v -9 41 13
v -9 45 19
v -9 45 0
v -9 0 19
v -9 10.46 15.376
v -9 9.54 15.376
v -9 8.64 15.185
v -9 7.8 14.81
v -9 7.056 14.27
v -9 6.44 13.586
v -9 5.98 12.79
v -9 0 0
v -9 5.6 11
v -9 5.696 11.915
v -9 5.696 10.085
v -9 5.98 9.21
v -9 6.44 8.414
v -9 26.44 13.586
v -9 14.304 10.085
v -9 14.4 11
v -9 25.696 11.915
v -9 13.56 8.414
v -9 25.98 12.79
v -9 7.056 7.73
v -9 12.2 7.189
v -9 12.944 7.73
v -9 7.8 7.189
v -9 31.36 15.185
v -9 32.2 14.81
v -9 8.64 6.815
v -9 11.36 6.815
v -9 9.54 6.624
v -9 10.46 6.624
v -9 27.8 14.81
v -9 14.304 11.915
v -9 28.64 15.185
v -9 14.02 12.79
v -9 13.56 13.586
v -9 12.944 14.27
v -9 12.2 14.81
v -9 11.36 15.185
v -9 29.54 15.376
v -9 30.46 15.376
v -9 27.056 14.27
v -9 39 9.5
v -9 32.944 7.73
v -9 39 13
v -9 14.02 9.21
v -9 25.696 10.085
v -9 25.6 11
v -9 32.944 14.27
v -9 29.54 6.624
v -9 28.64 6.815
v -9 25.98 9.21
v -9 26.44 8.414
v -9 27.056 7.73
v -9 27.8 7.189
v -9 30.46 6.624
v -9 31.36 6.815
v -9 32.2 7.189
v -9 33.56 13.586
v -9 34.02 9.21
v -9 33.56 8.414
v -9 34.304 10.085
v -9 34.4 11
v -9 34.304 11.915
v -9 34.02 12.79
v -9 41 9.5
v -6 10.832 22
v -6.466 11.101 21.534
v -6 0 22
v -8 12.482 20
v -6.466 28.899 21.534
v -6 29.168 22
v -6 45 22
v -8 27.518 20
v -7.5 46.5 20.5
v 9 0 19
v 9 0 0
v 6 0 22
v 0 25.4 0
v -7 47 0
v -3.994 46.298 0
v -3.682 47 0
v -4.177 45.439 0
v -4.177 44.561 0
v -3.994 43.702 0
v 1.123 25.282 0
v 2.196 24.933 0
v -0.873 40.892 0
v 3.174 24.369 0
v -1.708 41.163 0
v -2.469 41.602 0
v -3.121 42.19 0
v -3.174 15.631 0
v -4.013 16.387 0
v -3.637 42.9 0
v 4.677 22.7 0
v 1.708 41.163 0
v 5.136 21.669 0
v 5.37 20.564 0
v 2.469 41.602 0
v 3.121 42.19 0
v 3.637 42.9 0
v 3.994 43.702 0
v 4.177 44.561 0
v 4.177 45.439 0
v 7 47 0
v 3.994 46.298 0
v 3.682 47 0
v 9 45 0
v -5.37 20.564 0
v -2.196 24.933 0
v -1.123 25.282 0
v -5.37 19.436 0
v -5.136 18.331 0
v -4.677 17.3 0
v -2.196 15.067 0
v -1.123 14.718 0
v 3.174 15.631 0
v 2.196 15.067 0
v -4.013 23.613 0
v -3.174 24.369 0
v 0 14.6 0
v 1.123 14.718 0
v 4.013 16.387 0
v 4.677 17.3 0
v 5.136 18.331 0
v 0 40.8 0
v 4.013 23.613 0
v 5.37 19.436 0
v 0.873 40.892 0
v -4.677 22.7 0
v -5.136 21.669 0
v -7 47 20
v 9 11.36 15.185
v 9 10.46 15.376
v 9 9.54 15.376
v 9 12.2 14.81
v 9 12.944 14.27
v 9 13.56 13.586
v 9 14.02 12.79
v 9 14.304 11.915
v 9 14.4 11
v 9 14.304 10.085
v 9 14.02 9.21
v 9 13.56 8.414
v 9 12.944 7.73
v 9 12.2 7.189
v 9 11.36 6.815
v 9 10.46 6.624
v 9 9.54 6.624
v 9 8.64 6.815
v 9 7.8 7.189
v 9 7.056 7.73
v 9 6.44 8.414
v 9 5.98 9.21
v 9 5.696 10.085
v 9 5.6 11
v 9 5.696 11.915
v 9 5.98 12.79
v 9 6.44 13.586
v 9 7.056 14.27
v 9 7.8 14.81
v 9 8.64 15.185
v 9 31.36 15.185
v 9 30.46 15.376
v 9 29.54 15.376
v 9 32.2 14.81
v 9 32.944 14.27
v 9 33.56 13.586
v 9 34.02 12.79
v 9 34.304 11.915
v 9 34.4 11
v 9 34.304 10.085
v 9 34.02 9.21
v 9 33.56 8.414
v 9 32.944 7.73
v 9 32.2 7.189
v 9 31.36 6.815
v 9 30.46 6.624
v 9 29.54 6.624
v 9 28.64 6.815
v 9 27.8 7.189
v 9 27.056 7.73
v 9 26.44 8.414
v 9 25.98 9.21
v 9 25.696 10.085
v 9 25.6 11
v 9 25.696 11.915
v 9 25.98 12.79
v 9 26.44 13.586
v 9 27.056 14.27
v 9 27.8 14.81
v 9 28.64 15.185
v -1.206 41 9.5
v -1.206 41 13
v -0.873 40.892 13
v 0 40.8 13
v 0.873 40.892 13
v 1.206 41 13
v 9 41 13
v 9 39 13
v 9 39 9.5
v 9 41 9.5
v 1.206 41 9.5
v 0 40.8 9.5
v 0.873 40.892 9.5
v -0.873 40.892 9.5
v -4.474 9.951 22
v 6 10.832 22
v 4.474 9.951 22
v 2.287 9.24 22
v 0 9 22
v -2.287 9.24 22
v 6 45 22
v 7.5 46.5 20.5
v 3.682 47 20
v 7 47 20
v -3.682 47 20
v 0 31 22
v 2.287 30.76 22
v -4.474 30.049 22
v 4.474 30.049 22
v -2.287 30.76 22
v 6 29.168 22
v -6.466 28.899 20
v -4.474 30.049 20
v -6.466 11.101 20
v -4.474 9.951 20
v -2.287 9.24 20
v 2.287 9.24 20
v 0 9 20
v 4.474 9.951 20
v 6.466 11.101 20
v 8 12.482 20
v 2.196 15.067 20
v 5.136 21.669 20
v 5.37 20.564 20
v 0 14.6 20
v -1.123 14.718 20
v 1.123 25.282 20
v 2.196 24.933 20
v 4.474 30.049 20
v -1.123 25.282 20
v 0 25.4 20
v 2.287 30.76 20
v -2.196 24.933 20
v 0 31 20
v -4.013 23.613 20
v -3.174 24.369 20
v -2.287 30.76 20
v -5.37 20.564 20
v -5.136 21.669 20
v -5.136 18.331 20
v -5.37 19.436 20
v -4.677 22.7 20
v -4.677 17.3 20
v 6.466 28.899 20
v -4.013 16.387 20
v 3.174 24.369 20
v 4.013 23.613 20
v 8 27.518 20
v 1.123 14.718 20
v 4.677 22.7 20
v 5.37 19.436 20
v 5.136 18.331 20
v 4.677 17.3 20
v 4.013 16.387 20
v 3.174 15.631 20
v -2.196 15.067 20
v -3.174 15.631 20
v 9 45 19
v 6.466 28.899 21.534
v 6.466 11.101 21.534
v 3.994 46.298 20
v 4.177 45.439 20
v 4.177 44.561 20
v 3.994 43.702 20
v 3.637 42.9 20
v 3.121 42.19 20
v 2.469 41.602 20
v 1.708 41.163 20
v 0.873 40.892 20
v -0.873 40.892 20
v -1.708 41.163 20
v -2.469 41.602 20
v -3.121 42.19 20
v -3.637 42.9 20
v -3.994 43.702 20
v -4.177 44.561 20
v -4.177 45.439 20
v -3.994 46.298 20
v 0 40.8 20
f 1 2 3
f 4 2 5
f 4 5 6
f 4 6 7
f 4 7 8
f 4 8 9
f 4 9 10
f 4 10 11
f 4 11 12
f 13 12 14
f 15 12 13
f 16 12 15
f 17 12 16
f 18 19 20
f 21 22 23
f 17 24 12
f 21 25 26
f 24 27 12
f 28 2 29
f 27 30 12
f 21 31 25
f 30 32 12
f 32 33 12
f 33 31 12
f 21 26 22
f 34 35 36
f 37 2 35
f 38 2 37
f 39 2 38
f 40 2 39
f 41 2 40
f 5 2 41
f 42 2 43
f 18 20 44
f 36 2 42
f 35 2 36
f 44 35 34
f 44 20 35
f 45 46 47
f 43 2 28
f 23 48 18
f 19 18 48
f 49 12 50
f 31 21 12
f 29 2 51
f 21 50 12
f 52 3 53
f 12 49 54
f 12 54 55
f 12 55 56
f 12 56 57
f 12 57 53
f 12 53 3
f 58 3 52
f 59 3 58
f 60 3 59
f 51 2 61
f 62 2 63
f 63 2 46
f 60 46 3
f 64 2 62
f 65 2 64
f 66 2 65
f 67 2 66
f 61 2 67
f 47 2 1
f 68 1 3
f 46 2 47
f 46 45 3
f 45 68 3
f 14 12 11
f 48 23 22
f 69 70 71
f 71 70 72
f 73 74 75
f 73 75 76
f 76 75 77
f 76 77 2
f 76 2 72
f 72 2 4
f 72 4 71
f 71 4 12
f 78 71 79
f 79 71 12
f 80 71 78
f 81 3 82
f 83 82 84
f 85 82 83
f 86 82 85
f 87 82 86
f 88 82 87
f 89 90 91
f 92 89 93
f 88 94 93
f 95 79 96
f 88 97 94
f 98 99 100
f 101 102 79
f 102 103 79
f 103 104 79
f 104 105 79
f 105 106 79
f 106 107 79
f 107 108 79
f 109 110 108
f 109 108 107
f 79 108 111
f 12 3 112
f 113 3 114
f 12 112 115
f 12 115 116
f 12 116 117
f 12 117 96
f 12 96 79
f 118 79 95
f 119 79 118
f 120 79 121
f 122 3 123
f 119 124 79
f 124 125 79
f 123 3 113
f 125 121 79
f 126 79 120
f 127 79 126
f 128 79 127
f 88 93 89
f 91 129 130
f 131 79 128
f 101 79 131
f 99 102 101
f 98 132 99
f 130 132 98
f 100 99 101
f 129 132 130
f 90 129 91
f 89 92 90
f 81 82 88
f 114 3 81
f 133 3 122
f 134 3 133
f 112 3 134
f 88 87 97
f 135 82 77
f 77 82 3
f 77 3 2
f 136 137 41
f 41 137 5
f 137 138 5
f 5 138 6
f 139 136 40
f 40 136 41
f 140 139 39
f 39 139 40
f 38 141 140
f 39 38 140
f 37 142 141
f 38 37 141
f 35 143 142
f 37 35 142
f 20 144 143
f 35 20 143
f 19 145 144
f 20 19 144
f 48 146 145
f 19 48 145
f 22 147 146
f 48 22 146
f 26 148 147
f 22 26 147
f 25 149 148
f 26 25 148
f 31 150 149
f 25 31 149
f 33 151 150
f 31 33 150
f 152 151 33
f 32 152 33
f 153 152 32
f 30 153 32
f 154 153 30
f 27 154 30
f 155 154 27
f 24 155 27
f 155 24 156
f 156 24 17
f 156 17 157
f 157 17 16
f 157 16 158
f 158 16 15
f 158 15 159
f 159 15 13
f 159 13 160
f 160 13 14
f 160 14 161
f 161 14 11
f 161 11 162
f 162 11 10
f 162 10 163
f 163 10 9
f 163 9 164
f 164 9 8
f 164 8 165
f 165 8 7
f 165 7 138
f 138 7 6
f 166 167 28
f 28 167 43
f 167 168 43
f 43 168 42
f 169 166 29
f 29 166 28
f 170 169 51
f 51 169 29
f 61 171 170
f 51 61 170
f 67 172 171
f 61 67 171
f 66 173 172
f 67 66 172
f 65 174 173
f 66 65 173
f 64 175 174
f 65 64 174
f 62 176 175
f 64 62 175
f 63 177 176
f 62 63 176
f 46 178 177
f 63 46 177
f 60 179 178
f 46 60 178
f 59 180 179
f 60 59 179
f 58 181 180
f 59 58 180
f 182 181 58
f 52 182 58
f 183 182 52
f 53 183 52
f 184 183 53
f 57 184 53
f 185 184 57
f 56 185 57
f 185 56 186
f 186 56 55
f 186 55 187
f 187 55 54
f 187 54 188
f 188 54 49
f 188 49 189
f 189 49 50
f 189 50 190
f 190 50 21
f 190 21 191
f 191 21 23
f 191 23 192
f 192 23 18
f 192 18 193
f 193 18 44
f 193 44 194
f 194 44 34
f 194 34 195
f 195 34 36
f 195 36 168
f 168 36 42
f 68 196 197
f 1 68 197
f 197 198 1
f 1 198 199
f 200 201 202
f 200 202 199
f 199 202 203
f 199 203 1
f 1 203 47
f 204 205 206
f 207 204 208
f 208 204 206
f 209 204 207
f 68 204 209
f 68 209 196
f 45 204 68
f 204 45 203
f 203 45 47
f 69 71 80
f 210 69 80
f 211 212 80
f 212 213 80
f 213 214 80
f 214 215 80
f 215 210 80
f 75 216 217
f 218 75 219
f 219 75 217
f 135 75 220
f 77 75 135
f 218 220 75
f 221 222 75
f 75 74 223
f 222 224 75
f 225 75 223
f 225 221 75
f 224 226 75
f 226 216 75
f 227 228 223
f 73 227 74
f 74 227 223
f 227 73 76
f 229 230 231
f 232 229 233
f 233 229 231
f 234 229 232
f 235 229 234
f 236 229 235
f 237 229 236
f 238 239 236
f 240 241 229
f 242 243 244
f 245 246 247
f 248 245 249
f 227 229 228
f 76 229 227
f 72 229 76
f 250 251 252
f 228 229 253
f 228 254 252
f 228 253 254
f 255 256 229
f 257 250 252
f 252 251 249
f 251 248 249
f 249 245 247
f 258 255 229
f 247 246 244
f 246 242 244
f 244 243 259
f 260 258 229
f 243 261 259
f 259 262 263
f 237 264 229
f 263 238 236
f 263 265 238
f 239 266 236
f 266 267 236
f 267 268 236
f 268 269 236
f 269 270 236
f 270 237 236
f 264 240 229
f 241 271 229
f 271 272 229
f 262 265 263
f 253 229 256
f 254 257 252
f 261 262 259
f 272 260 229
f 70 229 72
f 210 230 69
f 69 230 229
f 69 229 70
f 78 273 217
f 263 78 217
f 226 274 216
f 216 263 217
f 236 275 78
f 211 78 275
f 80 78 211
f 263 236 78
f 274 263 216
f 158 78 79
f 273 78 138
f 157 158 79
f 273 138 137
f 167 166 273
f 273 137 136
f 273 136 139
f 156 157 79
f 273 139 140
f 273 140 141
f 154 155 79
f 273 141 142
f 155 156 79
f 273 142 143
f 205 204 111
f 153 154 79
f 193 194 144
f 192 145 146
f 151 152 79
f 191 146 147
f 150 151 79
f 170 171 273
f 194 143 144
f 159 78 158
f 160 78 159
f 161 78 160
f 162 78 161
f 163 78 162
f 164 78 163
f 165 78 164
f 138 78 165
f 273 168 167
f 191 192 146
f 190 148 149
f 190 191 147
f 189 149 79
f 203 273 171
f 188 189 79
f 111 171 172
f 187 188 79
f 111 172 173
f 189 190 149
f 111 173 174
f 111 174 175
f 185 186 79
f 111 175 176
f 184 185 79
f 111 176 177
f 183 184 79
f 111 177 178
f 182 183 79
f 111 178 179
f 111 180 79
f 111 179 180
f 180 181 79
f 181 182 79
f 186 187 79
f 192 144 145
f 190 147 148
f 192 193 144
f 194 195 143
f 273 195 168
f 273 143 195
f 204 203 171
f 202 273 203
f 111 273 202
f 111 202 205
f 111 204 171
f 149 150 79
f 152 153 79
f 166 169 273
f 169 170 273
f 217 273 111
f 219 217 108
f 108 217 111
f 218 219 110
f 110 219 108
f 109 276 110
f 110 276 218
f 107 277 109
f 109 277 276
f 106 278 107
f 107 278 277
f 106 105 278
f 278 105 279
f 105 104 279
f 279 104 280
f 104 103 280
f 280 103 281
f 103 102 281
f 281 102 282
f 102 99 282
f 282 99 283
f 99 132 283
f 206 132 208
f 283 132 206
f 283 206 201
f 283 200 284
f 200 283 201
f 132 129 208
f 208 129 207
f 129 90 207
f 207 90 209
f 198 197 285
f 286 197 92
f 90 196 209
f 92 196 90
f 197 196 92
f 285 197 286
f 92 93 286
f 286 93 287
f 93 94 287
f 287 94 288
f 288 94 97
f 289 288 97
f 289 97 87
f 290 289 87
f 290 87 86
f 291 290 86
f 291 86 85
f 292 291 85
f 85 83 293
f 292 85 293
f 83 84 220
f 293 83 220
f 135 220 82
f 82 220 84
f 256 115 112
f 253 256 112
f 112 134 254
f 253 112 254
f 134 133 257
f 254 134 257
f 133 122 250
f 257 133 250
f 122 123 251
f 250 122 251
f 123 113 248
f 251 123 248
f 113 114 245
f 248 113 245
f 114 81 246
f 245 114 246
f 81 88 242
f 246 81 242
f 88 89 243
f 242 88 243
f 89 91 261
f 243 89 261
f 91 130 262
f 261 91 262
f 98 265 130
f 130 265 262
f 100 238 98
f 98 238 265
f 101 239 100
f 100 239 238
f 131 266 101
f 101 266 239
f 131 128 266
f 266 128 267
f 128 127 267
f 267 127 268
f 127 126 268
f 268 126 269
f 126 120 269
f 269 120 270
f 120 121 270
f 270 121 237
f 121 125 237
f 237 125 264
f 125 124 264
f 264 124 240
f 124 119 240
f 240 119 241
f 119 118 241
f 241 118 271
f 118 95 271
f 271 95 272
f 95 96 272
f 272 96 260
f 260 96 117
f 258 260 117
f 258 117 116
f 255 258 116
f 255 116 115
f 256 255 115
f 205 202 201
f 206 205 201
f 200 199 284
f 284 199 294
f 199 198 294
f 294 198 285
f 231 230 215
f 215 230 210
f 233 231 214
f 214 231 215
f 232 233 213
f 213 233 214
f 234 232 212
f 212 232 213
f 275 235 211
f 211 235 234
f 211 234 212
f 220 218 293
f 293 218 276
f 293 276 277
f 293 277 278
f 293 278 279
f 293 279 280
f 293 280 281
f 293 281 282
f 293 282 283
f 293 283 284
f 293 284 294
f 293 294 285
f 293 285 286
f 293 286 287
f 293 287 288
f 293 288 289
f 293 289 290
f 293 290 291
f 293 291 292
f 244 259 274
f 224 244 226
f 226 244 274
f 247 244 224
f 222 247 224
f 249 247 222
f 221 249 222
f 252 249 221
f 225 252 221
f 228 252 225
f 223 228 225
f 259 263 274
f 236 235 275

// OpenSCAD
// PRUSA iteration3
// Y frame corners
// GNU GPL v3
// Josef Průša <iam@josefprusa.cz> and contributors
// http://www.reprap.org/wiki/Prusa_Mendel
// http://prusamendel.org


module corner_base(){	
 translate([-9,-11,0])cube([18,22,47]);
}

module corner_holes(){
 translate([-11,-11,0]){
  // Bottom hole
  translate([0,11,10]) rotate([0,90,0]) translate([0,0,-5]) cylinder(h = 270, r=4.4, $fn=30);
  // Top hole
  translate([0,11,30]) rotate([0,90,0]) translate([0,0,-5]) cylinder(h = 270, r=4.4, $fn=30);
  // Middle hole
  translate([11,0,20]) rotate([0,0,90]) rotate([0,90,0]) translate([0,0,-5]) cylinder(h = 270, r=5.4, $fn=30);

  // Washer hole
  translate([11,-3,20]) rotate([0,0,90]) rotate([0,90,0]) translate([0,0,-5]) cylinder(h = 10, r=11, $fn=30);

  // Top smooth rod insert
  // Smooth rod place
  translate([11,2,45]) rotate([0,90,90]) cylinder(h = 270, r=4.2, $fn=30); 
  // Ziptie
  translate([-5,9,39])  cube([30,3.5,2]);
 }
}

module corner_fancy(){
 // Side corner cutouts
  translate([-8,-9,0]) rotate([0,0,-45-180]) translate([-15,0,-1]) cube([30,30,51]);
  translate([8,-9,0]) rotate([0,0,45-180]) translate([-15,0,-1]) cube([30,30,51]);
 // Top corner cutouts
  translate([7,0,49-2]) rotate([0,45,0]) translate([-15,-15,0]) cube([30,30,30]);
  translate([-7,0,49-2]) rotate([0,-45,0]) translate([-15,-15,0]) cube([30,30,30]);
  rotate([0,0,90]){
   translate([-9,0,49-2]) rotate([0,-45,0]) translate([-15,-15,0]) cube([30,30,30]);
  }
}


// Final part
module corner(){
 // Rotate the part for better printing
 translate([0,0,11]) rotate([-90,0,0]) difference(){
  corner_base();
  corner_holes();
  corner_fancy();
 }
}

corner();
